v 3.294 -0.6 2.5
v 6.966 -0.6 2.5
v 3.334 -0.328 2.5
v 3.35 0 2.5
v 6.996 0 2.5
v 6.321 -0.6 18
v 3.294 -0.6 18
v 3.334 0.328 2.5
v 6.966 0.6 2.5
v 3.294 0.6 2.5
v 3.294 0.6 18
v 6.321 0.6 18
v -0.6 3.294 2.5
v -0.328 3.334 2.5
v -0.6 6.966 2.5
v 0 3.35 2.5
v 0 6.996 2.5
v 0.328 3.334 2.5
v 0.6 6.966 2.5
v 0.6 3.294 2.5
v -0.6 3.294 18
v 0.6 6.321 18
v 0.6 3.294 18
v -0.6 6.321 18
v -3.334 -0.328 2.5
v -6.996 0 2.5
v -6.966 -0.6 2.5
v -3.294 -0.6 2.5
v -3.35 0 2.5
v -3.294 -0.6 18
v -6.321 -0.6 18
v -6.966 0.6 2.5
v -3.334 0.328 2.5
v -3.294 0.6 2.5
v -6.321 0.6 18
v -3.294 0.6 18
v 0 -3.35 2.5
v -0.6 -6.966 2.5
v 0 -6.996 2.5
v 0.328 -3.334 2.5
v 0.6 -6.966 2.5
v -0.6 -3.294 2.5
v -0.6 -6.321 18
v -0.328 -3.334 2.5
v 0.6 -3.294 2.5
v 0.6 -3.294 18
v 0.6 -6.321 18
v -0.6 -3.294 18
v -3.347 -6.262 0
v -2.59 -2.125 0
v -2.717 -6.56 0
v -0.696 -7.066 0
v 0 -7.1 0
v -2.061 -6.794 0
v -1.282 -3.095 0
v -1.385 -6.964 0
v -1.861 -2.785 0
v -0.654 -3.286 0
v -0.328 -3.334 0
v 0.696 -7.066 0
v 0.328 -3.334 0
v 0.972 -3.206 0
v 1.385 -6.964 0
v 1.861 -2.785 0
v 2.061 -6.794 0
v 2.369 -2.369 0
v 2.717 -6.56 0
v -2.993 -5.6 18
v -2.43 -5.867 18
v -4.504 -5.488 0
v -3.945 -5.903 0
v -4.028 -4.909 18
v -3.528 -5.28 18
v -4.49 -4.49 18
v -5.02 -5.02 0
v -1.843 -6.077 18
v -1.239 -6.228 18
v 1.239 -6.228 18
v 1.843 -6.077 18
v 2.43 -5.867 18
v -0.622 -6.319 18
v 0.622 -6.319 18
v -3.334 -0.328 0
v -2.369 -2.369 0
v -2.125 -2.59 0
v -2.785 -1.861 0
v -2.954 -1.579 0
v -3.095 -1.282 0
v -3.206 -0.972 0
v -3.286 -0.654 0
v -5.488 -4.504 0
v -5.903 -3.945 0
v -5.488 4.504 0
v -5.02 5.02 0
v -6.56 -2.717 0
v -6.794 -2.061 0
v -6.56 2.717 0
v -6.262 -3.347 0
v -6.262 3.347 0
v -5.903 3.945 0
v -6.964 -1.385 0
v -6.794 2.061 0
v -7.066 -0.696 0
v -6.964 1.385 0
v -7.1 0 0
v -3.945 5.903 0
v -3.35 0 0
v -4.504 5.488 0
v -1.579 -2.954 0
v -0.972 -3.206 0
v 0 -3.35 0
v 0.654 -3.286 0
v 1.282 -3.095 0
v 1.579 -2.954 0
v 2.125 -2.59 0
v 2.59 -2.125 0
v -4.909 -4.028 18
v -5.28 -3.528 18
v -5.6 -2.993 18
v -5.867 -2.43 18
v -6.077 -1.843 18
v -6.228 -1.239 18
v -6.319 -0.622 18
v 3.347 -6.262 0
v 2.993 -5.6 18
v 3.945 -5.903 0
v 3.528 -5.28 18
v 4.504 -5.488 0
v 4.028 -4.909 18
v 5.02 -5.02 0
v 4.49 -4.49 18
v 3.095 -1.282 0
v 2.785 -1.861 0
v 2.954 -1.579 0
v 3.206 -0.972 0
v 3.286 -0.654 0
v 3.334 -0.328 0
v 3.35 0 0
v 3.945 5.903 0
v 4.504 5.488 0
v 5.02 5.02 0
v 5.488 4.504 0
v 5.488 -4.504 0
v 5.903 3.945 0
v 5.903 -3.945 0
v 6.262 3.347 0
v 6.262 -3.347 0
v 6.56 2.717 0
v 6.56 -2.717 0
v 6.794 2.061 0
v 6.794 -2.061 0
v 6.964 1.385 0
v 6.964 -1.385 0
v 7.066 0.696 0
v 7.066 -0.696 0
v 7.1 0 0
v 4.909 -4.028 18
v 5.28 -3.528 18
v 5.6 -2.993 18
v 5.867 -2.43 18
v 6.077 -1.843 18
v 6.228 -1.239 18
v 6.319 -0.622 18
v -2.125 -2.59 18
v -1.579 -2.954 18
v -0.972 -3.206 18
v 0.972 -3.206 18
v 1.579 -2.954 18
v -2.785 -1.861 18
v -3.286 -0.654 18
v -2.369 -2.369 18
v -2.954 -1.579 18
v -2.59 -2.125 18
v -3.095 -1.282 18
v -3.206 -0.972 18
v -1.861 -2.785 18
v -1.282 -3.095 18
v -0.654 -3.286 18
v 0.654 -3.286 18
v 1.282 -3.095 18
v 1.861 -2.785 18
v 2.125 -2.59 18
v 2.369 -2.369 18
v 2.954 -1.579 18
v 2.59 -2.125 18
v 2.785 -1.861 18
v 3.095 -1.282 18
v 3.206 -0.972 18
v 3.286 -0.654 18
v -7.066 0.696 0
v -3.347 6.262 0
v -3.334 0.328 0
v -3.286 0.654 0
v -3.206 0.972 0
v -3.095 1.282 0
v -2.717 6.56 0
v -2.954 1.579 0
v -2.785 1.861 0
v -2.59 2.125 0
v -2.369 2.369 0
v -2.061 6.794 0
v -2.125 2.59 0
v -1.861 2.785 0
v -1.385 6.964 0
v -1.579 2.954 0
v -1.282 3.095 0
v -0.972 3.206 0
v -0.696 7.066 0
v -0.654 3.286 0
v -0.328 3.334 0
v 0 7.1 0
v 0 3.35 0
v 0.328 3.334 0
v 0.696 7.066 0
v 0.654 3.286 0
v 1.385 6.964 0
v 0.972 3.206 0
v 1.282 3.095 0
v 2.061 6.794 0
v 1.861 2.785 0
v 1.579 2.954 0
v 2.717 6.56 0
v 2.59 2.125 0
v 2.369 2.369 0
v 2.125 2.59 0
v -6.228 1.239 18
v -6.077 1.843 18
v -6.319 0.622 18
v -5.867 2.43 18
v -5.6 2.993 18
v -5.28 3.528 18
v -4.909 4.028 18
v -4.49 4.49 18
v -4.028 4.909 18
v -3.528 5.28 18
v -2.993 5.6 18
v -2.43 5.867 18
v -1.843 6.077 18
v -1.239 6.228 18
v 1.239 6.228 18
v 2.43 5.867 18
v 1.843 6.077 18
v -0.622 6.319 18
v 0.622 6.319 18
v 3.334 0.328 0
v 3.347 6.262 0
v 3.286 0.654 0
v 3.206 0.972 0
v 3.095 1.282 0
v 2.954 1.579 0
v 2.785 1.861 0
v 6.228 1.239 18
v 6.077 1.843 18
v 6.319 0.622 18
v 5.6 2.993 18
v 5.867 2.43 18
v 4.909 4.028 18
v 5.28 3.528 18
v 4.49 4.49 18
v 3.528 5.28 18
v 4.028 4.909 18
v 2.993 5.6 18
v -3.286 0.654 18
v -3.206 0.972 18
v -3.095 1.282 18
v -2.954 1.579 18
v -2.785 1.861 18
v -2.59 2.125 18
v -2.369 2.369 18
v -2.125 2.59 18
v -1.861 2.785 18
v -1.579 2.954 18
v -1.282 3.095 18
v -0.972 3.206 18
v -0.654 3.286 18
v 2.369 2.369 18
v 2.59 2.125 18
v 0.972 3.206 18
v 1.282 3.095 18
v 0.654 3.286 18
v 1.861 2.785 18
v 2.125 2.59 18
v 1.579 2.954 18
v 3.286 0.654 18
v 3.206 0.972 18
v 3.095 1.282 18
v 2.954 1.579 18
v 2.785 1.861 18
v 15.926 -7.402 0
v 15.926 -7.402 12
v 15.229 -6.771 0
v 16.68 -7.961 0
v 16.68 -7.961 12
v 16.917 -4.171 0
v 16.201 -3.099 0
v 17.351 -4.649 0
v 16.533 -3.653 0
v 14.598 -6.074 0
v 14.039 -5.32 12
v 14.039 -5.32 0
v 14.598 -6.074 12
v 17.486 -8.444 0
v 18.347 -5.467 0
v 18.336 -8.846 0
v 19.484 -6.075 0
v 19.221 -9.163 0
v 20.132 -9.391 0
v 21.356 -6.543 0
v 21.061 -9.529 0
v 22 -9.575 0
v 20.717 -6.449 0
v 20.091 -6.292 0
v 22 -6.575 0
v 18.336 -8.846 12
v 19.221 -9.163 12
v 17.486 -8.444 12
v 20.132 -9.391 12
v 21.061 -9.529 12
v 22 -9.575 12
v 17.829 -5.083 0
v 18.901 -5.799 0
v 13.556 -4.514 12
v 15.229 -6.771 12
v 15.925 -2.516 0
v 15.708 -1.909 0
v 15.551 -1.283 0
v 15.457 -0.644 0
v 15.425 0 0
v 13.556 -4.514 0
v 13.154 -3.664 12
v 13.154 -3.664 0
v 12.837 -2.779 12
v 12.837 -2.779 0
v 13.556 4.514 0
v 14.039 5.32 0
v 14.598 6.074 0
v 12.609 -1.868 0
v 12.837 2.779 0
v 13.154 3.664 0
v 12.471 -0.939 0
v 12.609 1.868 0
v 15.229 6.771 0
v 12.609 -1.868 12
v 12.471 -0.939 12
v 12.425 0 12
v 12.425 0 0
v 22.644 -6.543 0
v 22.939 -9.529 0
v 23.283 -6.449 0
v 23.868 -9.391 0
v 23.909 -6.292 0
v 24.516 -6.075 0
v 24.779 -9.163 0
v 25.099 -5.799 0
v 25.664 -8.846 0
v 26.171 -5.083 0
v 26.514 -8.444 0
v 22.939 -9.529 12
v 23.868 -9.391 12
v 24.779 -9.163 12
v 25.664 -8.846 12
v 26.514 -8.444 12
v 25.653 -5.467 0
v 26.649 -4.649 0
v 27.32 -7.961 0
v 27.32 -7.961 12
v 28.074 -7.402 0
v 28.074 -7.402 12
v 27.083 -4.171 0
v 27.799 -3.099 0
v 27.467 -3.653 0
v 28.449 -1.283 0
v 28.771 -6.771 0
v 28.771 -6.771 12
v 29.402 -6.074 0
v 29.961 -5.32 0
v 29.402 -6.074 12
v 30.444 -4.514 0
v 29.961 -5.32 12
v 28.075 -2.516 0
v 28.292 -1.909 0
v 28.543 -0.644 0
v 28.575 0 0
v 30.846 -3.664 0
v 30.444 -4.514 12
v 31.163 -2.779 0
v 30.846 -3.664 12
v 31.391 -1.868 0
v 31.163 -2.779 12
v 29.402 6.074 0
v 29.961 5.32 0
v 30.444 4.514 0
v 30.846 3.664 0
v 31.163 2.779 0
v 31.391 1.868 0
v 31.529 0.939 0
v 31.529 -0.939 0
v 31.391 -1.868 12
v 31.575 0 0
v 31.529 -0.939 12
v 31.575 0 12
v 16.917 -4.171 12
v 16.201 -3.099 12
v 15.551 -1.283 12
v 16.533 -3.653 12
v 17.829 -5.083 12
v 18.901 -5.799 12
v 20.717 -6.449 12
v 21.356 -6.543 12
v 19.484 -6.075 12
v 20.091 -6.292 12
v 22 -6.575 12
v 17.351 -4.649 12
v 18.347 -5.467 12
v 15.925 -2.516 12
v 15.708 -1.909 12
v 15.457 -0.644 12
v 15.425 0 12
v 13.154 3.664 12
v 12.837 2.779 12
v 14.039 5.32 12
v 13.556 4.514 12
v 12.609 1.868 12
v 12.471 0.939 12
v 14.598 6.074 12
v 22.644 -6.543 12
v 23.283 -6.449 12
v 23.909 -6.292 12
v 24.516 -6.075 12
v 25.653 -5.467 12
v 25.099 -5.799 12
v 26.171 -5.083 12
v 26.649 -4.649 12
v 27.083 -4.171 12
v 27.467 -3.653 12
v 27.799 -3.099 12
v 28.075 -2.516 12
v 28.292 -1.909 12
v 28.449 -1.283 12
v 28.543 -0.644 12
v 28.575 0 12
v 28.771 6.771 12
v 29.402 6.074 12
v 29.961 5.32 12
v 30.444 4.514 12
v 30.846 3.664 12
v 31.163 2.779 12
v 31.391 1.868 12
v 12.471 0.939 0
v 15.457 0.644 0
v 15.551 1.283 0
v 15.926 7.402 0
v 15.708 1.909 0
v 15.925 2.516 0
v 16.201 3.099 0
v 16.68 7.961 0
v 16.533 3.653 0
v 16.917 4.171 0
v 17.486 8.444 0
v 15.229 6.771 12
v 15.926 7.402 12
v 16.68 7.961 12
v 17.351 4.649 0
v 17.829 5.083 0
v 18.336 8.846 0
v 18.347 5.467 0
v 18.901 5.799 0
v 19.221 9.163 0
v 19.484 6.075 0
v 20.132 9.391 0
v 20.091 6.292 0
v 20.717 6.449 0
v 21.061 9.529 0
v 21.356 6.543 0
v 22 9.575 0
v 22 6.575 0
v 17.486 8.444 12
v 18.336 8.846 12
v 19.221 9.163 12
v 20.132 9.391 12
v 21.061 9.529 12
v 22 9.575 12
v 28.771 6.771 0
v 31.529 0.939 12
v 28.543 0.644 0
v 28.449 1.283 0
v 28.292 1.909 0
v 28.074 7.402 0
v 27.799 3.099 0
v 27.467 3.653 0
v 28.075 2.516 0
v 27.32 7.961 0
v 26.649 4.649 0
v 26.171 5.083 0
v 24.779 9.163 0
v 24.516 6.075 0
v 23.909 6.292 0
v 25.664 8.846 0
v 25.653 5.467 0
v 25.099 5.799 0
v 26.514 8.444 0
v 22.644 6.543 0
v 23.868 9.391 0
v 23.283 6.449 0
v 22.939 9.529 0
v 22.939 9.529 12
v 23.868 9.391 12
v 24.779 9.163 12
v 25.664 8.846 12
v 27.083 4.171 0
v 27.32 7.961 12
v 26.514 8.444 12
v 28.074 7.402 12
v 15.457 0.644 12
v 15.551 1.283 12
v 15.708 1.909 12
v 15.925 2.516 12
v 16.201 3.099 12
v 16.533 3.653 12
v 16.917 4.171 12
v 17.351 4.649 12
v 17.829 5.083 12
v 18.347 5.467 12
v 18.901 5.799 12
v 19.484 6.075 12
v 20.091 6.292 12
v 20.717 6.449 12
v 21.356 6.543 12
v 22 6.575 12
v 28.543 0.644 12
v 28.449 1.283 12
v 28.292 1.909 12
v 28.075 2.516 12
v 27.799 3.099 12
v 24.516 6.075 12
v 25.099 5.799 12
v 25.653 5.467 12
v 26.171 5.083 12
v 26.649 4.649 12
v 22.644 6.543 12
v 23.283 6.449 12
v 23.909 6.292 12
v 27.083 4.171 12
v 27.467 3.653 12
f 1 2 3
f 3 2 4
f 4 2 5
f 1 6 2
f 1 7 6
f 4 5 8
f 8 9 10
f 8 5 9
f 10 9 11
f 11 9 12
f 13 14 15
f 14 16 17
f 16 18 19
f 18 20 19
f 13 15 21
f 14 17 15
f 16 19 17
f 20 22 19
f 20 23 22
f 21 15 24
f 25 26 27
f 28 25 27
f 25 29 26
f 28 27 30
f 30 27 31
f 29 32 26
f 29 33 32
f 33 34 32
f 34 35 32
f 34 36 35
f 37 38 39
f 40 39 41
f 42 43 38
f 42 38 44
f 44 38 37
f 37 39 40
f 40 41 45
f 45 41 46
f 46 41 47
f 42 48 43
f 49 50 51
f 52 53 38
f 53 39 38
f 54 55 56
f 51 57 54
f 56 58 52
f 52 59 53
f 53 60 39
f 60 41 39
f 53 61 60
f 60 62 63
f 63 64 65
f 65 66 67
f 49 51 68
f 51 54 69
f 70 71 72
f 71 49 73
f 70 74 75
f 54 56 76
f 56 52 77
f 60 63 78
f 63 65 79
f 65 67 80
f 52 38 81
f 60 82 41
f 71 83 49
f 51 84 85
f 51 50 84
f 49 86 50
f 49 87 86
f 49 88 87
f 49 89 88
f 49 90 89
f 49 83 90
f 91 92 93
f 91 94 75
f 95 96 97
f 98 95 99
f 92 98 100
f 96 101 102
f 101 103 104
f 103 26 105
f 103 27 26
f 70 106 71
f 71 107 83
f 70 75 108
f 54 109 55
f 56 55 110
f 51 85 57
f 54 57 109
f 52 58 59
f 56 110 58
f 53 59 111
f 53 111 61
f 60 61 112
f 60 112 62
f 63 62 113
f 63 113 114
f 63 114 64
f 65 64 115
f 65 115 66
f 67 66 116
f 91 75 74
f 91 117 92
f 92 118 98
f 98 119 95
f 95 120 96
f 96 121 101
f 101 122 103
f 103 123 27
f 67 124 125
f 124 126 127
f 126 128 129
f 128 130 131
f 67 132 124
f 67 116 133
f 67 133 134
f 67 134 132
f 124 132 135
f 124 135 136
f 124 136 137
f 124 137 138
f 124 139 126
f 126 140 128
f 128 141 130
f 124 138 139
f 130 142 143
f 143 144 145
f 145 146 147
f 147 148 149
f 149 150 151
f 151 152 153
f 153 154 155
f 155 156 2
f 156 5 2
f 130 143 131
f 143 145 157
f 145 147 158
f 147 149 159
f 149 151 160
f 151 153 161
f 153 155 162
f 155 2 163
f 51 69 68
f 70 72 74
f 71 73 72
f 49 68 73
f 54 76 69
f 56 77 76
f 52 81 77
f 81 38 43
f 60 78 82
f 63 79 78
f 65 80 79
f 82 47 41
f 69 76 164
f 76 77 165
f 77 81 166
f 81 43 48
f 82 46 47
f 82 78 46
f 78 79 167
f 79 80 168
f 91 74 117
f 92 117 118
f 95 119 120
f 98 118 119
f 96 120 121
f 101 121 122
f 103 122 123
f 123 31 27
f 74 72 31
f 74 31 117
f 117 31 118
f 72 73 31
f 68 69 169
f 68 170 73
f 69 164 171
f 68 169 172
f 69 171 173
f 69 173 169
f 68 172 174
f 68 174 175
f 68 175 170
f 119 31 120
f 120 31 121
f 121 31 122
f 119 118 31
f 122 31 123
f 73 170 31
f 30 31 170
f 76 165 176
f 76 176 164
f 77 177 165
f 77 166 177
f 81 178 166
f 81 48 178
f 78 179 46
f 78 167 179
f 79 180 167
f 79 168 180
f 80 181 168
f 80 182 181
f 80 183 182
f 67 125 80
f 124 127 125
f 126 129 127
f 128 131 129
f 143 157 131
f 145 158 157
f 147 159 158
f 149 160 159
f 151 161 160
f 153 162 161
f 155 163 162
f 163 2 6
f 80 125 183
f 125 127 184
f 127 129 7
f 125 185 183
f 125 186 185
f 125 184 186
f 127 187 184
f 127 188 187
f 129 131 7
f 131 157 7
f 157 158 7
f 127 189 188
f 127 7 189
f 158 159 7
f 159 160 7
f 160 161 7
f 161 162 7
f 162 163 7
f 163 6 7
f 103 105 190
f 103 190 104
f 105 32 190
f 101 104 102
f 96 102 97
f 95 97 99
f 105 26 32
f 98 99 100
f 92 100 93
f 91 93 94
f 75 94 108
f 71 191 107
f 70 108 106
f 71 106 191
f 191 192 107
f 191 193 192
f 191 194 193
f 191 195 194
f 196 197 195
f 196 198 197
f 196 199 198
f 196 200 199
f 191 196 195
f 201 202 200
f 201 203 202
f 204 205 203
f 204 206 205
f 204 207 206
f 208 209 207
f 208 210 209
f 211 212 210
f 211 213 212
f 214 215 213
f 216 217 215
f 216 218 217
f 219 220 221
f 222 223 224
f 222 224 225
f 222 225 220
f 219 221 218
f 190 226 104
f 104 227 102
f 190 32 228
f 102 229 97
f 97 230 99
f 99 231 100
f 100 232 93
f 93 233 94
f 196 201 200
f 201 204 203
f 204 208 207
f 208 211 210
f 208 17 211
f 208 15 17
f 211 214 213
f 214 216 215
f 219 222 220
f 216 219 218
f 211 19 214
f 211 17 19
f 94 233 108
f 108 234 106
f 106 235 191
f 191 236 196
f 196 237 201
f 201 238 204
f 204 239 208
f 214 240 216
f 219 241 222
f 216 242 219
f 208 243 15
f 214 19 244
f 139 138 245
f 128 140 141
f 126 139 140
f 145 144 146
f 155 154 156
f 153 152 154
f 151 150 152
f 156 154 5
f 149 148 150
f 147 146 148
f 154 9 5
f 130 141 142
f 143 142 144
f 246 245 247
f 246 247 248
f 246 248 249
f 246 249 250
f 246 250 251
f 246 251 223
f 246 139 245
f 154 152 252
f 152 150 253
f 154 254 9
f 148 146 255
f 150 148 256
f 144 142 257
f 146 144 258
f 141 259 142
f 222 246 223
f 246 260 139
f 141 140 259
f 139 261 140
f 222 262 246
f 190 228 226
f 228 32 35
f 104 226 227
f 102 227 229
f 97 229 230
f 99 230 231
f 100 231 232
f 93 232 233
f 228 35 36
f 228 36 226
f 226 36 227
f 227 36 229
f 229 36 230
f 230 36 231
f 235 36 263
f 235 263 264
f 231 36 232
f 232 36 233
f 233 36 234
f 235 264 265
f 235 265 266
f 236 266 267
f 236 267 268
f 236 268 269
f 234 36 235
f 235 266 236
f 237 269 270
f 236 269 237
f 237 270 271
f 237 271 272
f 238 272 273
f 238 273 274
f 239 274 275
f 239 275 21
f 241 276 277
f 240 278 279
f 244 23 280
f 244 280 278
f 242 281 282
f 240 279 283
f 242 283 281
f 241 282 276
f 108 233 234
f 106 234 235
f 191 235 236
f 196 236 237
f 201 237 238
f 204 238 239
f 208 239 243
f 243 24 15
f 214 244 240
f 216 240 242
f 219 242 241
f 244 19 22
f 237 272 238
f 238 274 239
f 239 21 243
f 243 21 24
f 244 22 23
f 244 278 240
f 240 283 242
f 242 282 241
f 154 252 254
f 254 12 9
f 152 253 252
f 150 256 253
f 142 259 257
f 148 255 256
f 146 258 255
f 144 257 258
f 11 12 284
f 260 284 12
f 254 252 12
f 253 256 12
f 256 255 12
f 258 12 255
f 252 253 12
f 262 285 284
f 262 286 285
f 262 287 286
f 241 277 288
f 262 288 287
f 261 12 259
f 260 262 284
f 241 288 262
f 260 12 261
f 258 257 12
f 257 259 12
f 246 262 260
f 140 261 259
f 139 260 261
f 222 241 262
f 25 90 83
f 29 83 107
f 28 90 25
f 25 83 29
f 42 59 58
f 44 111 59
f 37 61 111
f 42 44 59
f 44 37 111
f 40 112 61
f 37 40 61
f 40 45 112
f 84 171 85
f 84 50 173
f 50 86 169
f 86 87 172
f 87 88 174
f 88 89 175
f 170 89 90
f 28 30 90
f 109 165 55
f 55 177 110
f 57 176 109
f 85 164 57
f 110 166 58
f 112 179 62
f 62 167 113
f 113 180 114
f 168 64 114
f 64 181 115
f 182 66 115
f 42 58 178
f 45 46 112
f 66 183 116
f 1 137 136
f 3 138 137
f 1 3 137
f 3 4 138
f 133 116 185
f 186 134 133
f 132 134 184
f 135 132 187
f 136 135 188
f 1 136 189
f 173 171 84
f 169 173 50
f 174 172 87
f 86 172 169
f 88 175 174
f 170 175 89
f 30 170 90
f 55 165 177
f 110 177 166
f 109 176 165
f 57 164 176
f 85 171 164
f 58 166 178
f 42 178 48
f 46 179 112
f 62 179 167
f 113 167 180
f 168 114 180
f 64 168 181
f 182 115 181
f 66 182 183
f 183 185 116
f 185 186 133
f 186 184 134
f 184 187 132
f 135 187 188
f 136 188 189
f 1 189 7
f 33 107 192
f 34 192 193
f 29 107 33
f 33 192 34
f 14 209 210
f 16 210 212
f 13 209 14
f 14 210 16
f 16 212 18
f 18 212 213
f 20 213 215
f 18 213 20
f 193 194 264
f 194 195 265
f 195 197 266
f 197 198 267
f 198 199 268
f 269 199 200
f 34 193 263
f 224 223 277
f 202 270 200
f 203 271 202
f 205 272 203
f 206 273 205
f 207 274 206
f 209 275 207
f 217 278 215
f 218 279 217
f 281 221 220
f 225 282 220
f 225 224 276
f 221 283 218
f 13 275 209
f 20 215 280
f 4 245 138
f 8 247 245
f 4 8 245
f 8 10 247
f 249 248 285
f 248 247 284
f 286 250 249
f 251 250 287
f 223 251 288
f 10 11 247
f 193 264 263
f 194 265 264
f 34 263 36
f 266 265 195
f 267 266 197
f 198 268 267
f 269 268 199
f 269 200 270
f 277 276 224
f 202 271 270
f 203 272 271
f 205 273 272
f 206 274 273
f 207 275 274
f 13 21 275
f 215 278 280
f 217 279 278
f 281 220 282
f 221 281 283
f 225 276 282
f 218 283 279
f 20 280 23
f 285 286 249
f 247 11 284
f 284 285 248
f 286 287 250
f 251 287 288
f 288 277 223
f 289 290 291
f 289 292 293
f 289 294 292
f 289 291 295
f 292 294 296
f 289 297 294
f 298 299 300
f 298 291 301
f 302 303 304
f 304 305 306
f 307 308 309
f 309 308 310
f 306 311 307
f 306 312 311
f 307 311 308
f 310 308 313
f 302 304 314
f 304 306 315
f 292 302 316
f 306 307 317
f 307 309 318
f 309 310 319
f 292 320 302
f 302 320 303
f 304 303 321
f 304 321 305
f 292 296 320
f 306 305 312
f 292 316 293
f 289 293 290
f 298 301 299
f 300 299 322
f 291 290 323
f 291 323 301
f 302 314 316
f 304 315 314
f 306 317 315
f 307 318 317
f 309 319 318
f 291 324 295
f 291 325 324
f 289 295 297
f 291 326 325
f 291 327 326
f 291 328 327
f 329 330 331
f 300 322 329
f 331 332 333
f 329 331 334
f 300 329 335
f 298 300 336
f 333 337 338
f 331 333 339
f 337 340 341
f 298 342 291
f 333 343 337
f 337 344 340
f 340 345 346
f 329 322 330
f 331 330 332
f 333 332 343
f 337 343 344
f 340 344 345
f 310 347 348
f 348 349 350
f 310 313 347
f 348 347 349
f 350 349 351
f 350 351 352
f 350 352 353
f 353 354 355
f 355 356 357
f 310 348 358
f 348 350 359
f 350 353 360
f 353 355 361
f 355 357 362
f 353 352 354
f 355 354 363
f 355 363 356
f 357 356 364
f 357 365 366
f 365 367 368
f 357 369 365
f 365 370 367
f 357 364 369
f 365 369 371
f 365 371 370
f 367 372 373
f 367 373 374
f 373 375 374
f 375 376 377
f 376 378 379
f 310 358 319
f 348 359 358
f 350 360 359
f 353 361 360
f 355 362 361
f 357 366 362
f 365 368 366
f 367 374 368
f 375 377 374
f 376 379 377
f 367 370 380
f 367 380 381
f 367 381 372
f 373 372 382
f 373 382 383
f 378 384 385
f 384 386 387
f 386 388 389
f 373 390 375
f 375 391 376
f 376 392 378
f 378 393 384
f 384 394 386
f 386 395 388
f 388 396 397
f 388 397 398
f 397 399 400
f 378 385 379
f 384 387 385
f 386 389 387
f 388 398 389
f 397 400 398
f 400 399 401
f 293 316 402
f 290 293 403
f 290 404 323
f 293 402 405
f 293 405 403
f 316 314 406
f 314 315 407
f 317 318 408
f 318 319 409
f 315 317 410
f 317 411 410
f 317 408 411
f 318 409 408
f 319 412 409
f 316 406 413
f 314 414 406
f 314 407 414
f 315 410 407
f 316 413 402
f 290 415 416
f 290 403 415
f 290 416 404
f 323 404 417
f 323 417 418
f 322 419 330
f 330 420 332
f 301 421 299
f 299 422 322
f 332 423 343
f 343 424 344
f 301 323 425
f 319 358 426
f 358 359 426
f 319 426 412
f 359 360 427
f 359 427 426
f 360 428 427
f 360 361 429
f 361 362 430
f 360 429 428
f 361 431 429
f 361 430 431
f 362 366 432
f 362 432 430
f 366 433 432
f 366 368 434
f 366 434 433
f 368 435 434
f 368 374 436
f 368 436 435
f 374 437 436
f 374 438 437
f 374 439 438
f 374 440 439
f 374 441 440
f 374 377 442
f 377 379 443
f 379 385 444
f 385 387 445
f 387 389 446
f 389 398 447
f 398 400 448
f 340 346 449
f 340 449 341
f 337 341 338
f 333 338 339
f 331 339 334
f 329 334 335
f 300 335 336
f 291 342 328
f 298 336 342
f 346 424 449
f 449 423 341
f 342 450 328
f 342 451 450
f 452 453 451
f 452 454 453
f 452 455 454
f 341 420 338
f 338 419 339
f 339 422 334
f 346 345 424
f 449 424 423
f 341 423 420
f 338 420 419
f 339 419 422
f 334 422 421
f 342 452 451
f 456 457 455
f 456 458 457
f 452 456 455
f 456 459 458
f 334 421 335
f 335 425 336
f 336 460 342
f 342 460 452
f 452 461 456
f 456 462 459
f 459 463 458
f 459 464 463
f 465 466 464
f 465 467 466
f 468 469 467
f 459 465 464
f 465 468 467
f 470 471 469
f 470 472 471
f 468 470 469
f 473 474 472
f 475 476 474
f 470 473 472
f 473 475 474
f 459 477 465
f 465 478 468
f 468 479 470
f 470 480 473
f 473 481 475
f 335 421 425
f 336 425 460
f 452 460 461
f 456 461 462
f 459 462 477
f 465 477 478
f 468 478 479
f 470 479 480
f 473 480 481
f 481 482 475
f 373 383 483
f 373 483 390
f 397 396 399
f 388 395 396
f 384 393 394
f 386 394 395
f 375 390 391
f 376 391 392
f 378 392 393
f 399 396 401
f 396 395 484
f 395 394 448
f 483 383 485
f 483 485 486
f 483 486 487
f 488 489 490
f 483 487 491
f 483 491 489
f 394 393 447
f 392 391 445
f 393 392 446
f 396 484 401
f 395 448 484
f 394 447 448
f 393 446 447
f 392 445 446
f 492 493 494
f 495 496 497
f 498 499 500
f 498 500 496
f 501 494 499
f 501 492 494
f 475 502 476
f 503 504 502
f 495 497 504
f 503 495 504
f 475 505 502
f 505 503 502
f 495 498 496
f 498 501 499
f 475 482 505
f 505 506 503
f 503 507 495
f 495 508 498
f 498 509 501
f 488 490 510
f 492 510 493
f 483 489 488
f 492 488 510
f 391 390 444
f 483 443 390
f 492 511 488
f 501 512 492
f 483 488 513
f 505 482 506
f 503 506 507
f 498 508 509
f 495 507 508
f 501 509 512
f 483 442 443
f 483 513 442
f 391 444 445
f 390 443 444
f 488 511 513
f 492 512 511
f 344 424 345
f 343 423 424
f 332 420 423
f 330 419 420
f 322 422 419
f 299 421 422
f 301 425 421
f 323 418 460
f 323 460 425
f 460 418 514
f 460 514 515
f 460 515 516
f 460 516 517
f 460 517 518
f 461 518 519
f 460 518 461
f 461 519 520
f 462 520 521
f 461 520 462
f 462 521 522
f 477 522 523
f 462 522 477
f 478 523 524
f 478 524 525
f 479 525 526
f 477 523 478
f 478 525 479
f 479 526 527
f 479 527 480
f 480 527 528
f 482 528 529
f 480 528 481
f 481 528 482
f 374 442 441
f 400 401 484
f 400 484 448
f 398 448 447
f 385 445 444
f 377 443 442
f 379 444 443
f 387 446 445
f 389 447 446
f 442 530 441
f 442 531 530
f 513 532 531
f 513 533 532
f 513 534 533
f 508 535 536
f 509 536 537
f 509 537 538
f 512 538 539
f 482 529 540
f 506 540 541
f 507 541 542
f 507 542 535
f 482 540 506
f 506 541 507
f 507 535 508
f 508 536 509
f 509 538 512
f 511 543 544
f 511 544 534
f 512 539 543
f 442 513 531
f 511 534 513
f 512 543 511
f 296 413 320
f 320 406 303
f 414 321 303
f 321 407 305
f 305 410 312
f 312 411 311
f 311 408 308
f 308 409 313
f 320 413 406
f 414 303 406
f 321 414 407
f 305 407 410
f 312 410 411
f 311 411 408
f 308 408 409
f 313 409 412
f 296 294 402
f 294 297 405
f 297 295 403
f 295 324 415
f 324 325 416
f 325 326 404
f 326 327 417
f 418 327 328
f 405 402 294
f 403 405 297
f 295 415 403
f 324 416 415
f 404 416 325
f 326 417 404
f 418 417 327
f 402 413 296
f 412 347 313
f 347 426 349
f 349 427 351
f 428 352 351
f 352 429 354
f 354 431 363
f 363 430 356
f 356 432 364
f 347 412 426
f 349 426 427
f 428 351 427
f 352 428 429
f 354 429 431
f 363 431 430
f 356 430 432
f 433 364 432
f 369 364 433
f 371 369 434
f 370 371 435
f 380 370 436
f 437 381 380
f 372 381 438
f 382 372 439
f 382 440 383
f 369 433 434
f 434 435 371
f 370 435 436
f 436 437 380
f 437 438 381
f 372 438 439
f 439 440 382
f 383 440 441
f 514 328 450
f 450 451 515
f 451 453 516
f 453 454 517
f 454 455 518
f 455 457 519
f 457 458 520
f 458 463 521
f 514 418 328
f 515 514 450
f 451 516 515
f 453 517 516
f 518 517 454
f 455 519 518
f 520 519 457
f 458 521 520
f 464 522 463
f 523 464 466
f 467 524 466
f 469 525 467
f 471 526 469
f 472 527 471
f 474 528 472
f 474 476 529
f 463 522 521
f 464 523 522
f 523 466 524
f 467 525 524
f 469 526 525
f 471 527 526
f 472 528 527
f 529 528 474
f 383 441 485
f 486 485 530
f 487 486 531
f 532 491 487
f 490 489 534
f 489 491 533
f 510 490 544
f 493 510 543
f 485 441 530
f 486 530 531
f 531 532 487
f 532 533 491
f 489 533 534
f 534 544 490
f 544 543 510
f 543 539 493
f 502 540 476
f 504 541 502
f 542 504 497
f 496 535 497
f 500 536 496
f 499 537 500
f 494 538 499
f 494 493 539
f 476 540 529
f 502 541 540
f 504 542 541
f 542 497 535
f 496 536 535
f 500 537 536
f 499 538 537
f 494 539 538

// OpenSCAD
// Siphon strainer -- 1/4" tubing adapter (split collet + collar)
// Printed as a standalone pair; the sphere filter is combined later.
//
// Two fixes over the original geometry:
//   1. base_ring: slot cuts stop 2.5 mm short of the base, so the collet is one
//      part instead of four loose quarter-shells.
//   2. collar_id = clamp_od + collar_gap. The original clamp_od - 0.5 was
//      smaller than the collet's small end and could not be fitted at all.
//
// GRIP is set by the two numbers below. tube_bore controls how much the
// fingers must close to reach the tubing; collar_gap controls how hard the
// collar wedges them. Printed bores come out undersize by ~0.1-0.2 mm, so
// this is guess-and-check.

$fn = 64;

// ---- grip class (these are the knobs) ----
tube_bore  = 6.70;   // nominal tubing OD is 6.35
collar_gap = 0.45;   // collar_id = clamp_od + this

// Tubing
tube_od = 6.35;

// Collet
clamp_length = 18;
wall = 3;
slot_width = 1.2;
num_slots = 4;
taper = 1.5;
base_ring = 2.5;

// Collar
collar_length = 12;

// Derived
clamp_od  = tube_bore + 2*wall;
collar_id = clamp_od + collar_gap;
collar_od = collar_id + 2*wall;

// squeeze available at the base-ring stop, and the gap the fingers must close
gap_to_tube = (tube_bore - tube_od)/2;
squeeze_max = (taper*(1-base_ring/clamp_length) - collar_gap)/2;

echo(str("GRIP: bore=", tube_bore, " gap_to_tube=", gap_to_tube,
         " | collar_id=", collar_id, " squeeze_max=", squeeze_max));

module collet() {
    difference() {
        cylinder(h=clamp_length, d1=clamp_od+taper, d2=clamp_od);

        translate([0,0,-0.1])
            cylinder(h=clamp_length+0.2, d=tube_bore);

        for (a=[0:360/num_slots:359]) {
            rotate([0,0,a])
                translate([0,-slot_width/2,base_ring])
                    cube([clamp_od+taper, slot_width, clamp_length-base_ring+0.1]);
        }
    }
}

module collar() {
    difference() {
        cylinder(h=collar_length, d=collar_od);
        translate([0,0,-0.1])
            cylinder(h=collar_length+0.2, d=collar_id);
    }
}

// Both parts on one build plate
collet();
translate([22,0,0]) collar();
